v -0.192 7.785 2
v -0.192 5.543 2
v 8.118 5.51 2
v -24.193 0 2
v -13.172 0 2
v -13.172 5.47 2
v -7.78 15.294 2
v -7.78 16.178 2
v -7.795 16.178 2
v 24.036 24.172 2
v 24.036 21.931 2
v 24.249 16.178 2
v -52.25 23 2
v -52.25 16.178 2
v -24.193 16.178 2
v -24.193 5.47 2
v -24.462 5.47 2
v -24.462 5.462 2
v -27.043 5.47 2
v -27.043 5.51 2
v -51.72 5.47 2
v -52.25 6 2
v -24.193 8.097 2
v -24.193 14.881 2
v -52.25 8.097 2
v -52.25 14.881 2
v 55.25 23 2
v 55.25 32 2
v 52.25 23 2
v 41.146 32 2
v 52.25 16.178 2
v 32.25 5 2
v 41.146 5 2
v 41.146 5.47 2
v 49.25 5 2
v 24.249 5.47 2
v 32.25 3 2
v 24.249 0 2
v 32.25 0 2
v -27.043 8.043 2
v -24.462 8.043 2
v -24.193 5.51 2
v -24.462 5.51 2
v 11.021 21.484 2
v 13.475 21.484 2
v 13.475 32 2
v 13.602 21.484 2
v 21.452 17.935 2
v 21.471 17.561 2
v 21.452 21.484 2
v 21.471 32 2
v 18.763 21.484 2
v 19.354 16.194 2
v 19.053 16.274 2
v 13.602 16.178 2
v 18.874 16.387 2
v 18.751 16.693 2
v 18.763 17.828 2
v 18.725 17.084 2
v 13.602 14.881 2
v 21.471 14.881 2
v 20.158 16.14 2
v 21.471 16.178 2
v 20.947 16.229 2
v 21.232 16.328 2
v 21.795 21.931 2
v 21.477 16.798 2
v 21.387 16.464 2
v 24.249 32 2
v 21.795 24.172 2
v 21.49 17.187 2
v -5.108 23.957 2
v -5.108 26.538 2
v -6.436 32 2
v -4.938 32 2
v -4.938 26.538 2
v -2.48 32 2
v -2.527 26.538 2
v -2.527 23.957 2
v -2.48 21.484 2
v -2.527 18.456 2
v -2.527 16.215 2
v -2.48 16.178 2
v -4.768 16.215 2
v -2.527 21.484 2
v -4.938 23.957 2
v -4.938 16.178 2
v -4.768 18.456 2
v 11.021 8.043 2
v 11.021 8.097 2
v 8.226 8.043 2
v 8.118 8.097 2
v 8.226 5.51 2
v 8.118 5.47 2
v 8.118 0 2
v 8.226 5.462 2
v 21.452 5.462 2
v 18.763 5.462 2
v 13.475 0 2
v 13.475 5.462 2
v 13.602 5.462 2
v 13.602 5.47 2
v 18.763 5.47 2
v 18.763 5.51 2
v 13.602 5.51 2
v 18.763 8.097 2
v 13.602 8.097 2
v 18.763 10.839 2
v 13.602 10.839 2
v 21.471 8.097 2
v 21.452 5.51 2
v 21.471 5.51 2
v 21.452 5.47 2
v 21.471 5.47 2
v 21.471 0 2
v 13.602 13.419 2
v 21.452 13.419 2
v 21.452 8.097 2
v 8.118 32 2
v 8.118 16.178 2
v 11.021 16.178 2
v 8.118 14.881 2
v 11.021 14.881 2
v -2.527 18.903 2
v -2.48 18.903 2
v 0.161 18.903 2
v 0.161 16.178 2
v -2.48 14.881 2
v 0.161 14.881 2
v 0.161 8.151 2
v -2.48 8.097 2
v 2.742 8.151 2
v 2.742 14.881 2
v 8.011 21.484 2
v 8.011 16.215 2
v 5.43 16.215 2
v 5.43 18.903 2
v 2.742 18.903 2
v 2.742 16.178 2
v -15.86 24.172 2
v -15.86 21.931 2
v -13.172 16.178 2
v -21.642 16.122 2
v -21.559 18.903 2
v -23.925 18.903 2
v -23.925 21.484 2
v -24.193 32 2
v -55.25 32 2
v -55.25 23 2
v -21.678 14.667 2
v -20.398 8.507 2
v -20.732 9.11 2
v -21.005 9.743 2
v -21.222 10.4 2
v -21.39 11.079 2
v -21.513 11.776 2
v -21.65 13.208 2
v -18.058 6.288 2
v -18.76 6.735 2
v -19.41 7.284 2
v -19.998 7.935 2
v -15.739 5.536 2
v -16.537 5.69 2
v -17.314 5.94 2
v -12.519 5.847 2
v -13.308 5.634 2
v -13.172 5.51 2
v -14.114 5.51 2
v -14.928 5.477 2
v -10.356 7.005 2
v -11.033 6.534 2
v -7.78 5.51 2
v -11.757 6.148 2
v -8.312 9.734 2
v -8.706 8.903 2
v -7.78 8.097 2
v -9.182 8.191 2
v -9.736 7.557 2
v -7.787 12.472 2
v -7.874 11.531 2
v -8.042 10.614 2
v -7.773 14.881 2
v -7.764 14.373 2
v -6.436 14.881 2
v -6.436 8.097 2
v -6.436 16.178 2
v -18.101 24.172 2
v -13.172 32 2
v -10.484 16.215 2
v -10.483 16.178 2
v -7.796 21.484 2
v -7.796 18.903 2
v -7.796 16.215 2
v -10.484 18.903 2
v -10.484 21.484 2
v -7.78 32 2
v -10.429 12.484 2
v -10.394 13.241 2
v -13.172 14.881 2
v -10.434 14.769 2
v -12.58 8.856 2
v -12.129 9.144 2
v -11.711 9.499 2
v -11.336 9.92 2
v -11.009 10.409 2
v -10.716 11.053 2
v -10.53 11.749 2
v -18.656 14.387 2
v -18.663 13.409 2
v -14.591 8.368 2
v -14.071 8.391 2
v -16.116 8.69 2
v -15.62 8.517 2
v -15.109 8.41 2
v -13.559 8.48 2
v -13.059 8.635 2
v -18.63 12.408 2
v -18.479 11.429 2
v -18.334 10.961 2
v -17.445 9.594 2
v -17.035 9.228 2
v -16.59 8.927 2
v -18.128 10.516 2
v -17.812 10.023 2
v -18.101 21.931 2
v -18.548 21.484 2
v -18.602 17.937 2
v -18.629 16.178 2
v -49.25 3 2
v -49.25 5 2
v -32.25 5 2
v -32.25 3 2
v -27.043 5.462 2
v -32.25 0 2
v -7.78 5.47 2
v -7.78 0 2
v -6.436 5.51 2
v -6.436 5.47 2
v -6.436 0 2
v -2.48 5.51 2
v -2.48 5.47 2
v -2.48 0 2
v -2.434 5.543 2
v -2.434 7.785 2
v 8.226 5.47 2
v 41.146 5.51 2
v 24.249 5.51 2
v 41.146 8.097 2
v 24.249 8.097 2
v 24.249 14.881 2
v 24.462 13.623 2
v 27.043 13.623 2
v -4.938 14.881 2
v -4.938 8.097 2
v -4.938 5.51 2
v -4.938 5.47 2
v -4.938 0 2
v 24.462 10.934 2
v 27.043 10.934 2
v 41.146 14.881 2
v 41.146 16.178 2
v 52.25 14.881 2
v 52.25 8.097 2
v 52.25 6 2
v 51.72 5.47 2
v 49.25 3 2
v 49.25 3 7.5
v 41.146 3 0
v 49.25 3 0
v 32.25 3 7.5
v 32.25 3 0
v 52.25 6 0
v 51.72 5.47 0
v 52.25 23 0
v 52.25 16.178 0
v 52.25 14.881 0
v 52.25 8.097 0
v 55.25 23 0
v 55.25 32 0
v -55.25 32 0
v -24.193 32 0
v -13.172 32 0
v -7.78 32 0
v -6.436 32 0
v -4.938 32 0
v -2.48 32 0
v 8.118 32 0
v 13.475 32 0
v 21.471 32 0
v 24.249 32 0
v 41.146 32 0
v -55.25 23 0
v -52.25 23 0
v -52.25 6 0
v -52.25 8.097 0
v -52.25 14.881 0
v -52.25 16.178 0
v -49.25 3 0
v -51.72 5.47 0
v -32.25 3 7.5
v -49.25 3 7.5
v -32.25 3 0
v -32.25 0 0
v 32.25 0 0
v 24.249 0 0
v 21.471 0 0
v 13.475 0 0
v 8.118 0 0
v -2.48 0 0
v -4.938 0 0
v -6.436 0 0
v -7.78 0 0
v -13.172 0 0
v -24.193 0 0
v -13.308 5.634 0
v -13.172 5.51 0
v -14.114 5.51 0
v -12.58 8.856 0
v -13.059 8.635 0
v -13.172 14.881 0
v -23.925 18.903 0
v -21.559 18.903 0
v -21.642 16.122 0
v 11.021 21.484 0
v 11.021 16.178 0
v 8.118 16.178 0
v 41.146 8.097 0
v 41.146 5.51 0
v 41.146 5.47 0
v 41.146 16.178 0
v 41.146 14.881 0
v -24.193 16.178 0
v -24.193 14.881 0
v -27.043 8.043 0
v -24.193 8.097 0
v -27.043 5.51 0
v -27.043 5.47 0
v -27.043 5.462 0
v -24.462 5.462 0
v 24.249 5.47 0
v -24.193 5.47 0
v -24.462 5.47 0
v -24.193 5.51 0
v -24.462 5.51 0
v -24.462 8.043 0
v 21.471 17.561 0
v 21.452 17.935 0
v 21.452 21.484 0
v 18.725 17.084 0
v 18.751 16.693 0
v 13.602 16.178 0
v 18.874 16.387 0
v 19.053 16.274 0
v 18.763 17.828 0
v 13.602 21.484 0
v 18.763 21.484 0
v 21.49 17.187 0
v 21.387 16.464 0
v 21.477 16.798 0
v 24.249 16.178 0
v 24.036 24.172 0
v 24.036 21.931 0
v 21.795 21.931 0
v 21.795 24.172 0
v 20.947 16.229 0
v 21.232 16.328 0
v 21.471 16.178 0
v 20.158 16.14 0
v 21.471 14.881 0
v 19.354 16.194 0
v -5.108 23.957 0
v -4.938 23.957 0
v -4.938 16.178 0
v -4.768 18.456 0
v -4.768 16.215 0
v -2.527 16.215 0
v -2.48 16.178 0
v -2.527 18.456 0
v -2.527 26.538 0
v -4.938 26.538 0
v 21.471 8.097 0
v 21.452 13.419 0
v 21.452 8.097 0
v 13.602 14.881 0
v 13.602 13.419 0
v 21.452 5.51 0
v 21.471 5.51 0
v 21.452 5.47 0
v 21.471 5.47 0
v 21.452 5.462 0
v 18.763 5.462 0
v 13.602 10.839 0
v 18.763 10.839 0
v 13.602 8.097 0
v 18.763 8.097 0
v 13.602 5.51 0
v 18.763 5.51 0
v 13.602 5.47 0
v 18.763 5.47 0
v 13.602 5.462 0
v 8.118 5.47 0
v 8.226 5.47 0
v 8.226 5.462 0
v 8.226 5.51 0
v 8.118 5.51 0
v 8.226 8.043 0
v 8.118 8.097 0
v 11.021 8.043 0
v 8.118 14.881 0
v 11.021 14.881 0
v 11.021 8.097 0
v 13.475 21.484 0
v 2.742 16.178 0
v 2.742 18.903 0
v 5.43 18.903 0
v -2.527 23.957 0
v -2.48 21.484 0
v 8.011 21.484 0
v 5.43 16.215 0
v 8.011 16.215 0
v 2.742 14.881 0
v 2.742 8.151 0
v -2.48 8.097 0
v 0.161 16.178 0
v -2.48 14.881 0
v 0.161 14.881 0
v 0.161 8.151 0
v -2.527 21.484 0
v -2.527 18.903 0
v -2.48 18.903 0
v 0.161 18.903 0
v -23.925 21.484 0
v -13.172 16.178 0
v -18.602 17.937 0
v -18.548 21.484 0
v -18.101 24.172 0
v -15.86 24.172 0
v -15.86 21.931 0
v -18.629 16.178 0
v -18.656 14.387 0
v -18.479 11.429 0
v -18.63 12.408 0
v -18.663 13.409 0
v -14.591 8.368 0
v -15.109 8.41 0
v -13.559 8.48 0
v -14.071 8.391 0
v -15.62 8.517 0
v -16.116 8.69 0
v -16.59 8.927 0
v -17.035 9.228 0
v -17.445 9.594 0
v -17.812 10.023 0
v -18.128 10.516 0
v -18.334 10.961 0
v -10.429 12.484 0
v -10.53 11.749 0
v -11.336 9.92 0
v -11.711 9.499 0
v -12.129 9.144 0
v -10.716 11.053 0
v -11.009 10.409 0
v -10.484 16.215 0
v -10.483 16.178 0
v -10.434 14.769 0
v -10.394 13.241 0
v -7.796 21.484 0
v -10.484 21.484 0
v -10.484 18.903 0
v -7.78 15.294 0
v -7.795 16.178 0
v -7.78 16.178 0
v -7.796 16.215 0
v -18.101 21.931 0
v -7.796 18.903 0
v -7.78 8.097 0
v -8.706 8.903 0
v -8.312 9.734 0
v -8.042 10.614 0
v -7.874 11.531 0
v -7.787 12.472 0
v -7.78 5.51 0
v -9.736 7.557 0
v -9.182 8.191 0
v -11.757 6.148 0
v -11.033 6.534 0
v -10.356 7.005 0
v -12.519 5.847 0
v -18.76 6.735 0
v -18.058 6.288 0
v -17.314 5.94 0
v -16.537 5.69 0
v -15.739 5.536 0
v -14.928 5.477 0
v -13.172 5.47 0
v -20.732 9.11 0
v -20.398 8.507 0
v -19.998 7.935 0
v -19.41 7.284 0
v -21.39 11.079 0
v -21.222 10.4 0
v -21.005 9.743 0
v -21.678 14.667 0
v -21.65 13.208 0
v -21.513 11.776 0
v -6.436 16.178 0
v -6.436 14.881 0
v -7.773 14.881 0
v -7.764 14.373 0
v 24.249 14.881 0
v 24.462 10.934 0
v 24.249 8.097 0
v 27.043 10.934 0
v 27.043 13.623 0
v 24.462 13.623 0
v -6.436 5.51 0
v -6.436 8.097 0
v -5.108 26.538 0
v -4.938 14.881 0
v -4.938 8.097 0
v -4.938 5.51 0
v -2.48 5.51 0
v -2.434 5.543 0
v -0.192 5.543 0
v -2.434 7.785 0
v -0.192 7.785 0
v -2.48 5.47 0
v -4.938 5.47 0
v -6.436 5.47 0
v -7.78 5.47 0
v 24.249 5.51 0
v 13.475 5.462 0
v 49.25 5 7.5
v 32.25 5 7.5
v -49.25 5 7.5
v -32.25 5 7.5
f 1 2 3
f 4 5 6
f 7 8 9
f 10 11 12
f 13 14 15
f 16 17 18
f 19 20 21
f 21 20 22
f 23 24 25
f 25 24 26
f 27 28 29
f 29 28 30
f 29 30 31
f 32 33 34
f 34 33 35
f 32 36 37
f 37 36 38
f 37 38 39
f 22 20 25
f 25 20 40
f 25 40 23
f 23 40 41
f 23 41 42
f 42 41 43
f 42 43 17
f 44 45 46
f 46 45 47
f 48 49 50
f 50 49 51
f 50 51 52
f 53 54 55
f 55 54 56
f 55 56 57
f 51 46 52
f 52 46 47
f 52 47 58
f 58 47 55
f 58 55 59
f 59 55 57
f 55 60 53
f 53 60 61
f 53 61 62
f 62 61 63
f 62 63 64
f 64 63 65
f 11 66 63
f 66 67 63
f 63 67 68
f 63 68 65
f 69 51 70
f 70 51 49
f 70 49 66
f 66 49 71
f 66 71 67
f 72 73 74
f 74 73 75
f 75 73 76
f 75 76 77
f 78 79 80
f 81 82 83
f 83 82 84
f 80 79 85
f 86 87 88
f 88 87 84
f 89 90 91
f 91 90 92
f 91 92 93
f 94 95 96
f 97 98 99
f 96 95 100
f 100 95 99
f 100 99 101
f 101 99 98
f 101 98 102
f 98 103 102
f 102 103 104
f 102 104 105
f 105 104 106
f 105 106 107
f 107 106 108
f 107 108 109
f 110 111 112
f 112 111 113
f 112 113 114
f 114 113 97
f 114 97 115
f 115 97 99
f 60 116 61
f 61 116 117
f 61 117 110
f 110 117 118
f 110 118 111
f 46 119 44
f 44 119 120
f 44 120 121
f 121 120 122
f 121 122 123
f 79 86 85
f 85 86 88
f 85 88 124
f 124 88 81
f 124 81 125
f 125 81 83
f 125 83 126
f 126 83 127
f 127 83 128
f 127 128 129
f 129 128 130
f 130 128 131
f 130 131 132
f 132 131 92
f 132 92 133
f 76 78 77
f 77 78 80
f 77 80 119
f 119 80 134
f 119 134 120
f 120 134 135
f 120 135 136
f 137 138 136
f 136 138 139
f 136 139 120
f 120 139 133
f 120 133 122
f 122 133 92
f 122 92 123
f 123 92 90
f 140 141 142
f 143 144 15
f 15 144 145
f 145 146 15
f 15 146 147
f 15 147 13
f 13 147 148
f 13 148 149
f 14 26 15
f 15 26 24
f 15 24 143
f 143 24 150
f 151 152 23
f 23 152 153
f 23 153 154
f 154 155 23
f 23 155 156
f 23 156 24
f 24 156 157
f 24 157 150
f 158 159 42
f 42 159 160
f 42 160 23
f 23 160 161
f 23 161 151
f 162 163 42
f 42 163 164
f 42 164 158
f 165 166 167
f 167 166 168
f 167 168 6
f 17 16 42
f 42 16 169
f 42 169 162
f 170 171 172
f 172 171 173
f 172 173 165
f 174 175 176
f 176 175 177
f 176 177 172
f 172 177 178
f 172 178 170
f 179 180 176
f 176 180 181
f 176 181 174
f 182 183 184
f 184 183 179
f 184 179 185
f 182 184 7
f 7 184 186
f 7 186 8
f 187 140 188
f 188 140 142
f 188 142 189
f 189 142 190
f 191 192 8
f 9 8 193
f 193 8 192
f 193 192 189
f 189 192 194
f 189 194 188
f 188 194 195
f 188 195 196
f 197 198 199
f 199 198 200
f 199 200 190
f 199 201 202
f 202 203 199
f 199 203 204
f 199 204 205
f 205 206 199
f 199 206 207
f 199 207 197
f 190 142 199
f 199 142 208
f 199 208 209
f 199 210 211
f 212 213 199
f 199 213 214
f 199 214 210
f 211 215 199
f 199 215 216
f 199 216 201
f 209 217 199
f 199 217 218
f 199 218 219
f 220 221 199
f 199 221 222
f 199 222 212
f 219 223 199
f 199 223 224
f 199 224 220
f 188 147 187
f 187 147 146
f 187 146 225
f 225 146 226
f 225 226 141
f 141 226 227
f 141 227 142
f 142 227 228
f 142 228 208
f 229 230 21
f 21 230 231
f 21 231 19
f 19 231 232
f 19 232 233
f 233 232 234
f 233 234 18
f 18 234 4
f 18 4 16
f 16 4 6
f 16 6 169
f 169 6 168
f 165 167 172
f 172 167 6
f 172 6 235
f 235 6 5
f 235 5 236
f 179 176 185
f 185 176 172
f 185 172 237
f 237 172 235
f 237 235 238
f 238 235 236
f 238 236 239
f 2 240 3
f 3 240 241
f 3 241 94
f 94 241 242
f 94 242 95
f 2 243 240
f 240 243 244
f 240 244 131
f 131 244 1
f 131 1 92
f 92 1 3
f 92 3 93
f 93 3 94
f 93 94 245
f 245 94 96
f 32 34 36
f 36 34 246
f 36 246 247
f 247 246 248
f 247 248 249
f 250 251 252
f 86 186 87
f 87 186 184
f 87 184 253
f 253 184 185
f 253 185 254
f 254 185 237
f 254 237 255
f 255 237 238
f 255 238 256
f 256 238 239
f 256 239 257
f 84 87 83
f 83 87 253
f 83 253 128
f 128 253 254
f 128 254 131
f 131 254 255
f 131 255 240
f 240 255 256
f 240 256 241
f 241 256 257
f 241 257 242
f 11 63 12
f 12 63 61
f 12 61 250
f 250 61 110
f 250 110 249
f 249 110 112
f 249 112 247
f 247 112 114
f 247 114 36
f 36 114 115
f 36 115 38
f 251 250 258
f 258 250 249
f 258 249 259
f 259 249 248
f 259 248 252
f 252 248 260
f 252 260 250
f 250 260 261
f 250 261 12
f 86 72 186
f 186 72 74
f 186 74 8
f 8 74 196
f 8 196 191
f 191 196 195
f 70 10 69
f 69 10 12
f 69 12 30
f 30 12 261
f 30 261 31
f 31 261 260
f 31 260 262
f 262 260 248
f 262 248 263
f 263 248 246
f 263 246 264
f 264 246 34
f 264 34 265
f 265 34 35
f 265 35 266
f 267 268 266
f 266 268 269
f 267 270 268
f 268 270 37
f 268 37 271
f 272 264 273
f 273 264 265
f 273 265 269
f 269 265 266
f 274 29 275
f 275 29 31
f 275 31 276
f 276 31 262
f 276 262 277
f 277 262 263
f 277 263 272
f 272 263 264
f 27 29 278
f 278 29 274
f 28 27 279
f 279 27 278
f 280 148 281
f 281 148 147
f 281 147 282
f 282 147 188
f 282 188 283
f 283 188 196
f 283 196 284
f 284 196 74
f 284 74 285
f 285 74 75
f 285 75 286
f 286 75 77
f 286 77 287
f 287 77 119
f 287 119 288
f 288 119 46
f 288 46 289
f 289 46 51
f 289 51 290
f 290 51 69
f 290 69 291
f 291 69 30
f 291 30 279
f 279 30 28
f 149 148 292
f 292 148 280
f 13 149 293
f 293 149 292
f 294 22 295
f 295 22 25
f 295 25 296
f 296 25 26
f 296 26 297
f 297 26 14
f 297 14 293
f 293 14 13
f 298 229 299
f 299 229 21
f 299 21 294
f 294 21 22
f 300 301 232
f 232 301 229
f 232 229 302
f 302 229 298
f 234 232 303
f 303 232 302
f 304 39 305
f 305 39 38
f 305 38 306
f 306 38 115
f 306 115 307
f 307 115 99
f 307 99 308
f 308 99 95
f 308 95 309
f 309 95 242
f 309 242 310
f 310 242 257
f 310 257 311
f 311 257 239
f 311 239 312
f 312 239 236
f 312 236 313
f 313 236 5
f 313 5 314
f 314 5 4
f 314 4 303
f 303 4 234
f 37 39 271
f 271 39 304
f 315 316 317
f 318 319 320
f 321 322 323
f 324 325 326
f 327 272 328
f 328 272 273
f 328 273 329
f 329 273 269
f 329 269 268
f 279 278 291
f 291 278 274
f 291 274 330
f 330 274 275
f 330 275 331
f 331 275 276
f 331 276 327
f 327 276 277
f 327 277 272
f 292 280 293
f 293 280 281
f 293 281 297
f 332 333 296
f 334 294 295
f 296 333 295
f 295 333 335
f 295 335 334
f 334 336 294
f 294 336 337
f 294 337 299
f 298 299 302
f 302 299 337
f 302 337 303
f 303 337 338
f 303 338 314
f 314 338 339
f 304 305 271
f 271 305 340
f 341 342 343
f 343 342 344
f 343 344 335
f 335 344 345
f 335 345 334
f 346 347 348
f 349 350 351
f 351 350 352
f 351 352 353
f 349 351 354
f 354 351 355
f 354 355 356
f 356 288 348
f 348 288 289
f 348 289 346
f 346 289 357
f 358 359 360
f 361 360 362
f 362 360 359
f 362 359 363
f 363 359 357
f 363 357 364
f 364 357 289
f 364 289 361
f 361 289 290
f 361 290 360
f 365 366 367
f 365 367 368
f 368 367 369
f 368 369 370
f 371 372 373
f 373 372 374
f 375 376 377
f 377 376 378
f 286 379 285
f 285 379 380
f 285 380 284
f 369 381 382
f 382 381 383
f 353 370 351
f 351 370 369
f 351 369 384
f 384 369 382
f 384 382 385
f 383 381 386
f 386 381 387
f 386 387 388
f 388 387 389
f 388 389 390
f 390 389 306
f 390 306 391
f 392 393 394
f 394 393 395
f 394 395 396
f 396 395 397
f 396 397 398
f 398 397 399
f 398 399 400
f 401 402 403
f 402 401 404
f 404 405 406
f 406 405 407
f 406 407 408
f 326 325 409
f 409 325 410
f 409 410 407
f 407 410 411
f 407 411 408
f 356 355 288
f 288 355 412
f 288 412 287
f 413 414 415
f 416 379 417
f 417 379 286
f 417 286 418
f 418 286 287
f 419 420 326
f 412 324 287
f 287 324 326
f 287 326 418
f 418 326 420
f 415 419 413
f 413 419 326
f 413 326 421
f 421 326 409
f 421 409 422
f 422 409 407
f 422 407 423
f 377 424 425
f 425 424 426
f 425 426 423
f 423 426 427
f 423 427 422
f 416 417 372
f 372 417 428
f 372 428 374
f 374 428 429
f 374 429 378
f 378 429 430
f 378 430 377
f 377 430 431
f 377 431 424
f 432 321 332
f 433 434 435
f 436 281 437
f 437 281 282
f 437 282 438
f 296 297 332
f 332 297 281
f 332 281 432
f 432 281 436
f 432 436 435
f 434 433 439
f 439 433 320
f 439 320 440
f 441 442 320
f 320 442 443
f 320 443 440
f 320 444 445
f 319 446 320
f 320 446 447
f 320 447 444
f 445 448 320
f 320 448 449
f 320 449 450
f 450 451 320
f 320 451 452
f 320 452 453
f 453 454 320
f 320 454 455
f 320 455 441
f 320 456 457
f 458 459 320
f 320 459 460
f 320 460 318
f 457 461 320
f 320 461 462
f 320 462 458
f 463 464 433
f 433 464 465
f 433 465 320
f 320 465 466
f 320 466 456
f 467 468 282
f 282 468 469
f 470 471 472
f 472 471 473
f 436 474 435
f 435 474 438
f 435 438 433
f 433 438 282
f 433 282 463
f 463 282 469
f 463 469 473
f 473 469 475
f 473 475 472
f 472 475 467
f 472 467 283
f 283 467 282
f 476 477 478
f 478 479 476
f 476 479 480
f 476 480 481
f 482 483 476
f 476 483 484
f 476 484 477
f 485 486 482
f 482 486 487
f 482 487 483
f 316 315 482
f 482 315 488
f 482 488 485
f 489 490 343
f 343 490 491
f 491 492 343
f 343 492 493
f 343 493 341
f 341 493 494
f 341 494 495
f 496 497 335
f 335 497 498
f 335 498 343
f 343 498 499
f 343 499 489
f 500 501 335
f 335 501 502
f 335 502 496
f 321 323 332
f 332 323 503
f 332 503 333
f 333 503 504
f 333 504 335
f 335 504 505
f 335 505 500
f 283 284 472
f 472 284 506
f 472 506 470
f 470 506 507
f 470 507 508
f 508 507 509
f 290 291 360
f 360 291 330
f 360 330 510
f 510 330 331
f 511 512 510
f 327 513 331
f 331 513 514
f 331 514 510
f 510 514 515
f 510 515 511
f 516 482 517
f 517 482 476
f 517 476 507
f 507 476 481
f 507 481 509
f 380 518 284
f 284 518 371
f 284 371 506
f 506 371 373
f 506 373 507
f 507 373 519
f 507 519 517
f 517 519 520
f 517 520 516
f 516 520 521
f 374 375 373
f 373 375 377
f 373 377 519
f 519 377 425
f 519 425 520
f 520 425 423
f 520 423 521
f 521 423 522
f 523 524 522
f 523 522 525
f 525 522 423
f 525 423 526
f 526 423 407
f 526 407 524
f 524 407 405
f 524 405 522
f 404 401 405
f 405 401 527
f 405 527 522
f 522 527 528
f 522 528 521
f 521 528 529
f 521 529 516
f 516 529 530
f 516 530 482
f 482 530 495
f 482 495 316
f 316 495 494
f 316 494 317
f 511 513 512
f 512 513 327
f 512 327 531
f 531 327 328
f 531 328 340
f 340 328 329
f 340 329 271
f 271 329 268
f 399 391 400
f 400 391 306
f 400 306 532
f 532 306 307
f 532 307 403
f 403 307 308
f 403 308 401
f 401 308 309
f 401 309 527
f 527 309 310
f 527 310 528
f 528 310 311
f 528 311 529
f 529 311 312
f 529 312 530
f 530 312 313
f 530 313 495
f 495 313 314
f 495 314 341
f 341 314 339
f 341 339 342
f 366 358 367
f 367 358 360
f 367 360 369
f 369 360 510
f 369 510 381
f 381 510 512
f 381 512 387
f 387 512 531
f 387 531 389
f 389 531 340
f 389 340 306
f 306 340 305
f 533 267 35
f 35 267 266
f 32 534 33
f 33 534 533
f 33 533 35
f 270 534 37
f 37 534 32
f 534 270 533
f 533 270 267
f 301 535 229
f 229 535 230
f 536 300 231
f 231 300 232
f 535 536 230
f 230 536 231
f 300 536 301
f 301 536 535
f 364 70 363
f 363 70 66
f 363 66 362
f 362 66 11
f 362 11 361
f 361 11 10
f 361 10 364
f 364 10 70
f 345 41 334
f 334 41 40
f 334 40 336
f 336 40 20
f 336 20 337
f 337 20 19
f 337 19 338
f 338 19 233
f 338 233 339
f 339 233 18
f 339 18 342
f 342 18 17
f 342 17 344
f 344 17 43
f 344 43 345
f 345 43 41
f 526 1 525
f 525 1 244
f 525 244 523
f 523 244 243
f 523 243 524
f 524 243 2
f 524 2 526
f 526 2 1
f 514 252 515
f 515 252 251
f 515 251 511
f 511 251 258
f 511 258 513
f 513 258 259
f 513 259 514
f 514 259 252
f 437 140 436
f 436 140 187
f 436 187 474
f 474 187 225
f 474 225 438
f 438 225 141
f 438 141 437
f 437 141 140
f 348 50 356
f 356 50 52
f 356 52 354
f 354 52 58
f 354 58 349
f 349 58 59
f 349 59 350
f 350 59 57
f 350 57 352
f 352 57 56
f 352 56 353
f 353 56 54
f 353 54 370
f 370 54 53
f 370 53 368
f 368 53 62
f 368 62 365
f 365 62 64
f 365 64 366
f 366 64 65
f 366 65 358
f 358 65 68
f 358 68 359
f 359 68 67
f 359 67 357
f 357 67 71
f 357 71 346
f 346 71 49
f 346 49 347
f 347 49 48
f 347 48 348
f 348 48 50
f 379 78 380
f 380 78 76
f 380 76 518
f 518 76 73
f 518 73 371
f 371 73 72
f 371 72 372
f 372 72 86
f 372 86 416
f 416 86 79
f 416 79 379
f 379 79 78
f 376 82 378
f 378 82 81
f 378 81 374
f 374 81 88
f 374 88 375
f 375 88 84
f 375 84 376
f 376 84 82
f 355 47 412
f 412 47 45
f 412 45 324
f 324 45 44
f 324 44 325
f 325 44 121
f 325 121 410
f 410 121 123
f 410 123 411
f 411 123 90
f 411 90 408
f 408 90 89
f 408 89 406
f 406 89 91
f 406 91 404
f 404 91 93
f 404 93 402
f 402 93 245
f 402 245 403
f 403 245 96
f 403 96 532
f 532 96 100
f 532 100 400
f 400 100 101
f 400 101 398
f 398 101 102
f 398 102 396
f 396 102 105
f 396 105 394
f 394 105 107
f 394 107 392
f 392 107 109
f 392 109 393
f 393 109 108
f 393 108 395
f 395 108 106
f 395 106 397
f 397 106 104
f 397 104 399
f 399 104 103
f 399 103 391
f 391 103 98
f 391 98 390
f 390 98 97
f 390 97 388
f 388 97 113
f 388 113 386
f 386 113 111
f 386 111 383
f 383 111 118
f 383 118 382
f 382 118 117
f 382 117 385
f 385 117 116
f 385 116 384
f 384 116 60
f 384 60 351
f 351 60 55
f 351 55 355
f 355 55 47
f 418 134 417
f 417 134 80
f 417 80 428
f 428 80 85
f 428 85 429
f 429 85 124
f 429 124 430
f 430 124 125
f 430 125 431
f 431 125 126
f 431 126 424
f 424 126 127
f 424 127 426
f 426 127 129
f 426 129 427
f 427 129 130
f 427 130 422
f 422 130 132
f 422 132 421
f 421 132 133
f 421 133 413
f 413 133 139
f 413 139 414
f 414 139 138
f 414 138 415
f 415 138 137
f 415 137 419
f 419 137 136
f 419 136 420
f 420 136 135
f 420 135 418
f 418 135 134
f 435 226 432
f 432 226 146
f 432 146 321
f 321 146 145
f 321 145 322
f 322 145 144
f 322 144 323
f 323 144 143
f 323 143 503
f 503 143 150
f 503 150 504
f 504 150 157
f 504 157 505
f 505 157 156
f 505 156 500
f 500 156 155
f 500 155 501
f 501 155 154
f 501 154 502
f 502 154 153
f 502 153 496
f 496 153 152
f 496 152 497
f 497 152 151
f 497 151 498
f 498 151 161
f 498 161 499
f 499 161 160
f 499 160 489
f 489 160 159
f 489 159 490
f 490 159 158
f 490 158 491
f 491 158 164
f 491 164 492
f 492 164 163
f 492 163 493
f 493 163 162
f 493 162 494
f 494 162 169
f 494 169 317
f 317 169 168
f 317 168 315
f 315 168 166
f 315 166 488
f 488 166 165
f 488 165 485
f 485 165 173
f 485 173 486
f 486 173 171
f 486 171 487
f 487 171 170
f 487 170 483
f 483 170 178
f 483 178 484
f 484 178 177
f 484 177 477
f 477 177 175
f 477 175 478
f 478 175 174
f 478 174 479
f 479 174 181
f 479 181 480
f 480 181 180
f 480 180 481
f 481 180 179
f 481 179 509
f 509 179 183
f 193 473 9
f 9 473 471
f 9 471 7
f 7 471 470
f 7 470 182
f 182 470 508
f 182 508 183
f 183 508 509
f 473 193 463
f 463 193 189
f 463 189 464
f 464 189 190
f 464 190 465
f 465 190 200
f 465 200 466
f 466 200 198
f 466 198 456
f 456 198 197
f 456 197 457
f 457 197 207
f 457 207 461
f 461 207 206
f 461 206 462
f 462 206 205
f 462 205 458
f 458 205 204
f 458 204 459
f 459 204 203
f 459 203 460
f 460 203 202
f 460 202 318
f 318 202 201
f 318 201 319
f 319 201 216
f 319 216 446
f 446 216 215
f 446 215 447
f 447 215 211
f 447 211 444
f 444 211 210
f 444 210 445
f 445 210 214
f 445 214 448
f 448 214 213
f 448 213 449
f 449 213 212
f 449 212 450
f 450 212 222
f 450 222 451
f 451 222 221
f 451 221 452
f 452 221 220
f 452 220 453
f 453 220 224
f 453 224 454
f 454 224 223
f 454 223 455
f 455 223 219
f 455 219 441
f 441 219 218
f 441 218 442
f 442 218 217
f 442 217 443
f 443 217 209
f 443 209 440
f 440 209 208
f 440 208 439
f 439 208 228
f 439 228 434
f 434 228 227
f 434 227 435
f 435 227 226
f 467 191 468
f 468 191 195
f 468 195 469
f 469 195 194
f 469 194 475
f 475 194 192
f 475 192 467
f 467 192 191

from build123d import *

# Parameters (mm, degrees)
BOSS_EXTRUDE1_DEPTH = 2
SKETCH2_W           = 17
SKETCH2_H           = 2
BOSS_EXTRUDE2_DEPTH = 5.5
SKETCH3_W           = 2.580637968
SKETCH3_H           = 2.580641016
SKETCH3_W_2         = 2.241280605
SKETCH3_H_2         = 2.241280605
SKETCH3_W_3         = 2.688165312
SKETCH3_H_3         = 2.580637968
SKETCH3_W_4         = 2.580640102
SKETCH3_H_4         = 2.68816836
SKETCH3_W_5         = 2.580641016
CUT_EXTRUDE1_DEPTH  = 5


with BuildPart() as part:
    # Sketch1 → Boss-Extrude1 (new body)
    with BuildSketch(Plane.XY):
        Polygon((-32.25, 0), (32.25, 0), (32.25, 3), (49.25, 3), (52.25, 6), (52.25, 23), (55.25, 23), (55.25, 32), (-55.25, 32), (-55.25, 23), (-52.25, 23), (-52.25, 6), (-49.25, 3), (-32.25, 3), align=None)
    extrude(amount=BOSS_EXTRUDE1_DEPTH)

    # Sketch2 → Boss-Extrude2 (add)
    with BuildSketch(Plane.XY.offset(2)):
        with Locations((-40.75, 4)):
            Rectangle(SKETCH2_W, SKETCH2_H)
        with Locations((40.75, 4)):
            Rectangle(SKETCH2_W, SKETCH2_H)
    extrude(amount=BOSS_EXTRUDE2_DEPTH)

    # Sketch3 → Cut-Extrude1 (cut)
    with BuildSketch(Plane(origin=(0, 0, 0), x_dir=(-1, 0, 0), z_dir=(0, 0, -1))):
        with Locations((3.81719709, 25.247293672)):
            Rectangle(SKETCH3_W, SKETCH3_H)
        with Locations((-22.915804717, 23.05138755)):
            Rectangle(SKETCH3_W_2, SKETCH3_H_2)
        Polygon((-21.451570254, 21.483859492), (-21.451570254, 17.935481524), (-21.490182318, 17.186866511), (-21.476760755, 16.797579304), (-21.386689002, 16.464291172), (-21.231630232, 16.327958094), (-20.947078705, 16.228780137), (-20.157604338, 16.139996469), (-19.354479198, 16.194152418), (-19.052864358, 16.273649135), (-18.873917192, 16.387460236), (-18.751023052, 16.692507734), (-18.724770323, 17.0838688), (-18.763403723, 17.82795418), (-18.763403723, 21.483859492), align=None)
        with Locations((16.980823721, 23.05138755)):
            Rectangle(SKETCH3_W_2, SKETCH3_H_2)
        Polygon((-13.60212352, 21.483859492), (-13.60212352, 13.419360508), (-21.451570254, 13.419360508), (-21.451570254, 5.46238582), (-18.763403723, 5.46238582), (-18.763403723, 10.838719492), (-13.60212352, 10.838719492), (-13.60212352, 5.46238582), (-8.225790152, 5.46238582), (-8.225790152, 8.043026836), (-11.021483418, 8.043026836), (-11.021483418, 21.483859492), align=None)
        Polygon((-8.010736988, 21.483859492), (-8.010736988, 16.215053164), (-5.430096887, 16.215053164), (-5.430096887, 18.903221524), (-2.741930356, 18.903221524), (-2.741930356, 8.15055418), (-0.161290254, 8.15055418), (-0.161290254, 18.903221524), (2.526878106, 18.903221524), (2.526878106, 21.483859492), align=None)
        with Locations((3.647518408, 17.335693467)):
            Rectangle(SKETCH3_W_2, SKETCH3_H_2)
        with Locations((9.13976709, 20.193540508)):
            Rectangle(SKETCH3_W_3, SKETCH3_H_3)
        Polygon((18.54834873, 21.483859492), (18.602112402, 17.936682436), (18.655876074, 14.387100508), (18.662800216, 13.409194818), (18.630388393, 12.40793962), (18.478863779, 11.42852517), (18.333504049, 10.96112961), (18.128450154, 10.516140508), (17.811648959, 10.023003064), (17.444951089, 9.593525234), (17.035386148, 9.227963049), (16.589983736, 8.926572846), (16.115772848, 8.689610963), (15.619783696, 8.517333736), (15.109044966, 8.409997806), (14.590586567, 8.367859206), (14.071437796, 8.391173968), (13.558628255, 8.480199038), (13.059187242, 8.635190142), (12.58014436, 8.856404229), (12.1285286, 9.144097024), (11.711370176, 9.498525474), (11.33569808, 9.919945307), (11.00854161, 10.408613164), (10.716068027, 11.052540045), (10.529929105, 11.749061994), (10.429370099, 12.483578178), (10.393636261, 13.241488372), (10.433622973, 14.76908745), (10.483849746, 16.215053164), (7.795684434, 16.215053164), (7.763966032, 14.373321414), (7.786948866, 12.471897633), (7.874330149, 11.531087627), (8.04183939, 10.614098351), (8.311627319, 9.733844181), (8.705844666, 8.903239492), (9.182301016, 8.190905738), (9.735606894, 7.557466415), (10.355845938, 7.004639682), (11.033102089, 6.534144306), (11.757459289, 6.14769814), (12.51900148, 5.84701995), (13.307812602, 5.633827895), (14.113976293, 5.509840132), (14.927576495, 5.476775123), (15.738697453, 5.536351331), (16.5374225, 5.690287218), (17.313836188, 5.940300638), (18.058021847, 6.288110356), (18.76006342, 6.735434531), (19.410045152, 7.283991321), (19.998050682, 7.935499492), (20.398488388, 8.506577954), (20.732234939, 9.110218504), (21.004927916, 9.742712337), (21.222204596, 10.400350341), (21.38970256, 11.07942371), (21.513059082, 11.776223637), (21.649898432, 13.208167331), (21.67782177, 14.666510058), (21.641929436, 16.121580758), (21.559096074, 18.903221524), (23.924682402, 18.903221524), (23.924682402, 21.483859492), align=None)
        with Locations((-25.752637039, 12.278477871)):
            Rectangle(SKETCH3_W_4, SKETCH3_H_4)
        Polygon((0.192376871, 7.784525328), (0.192274032, 5.543244726), (2.433554635, 5.543347565), (2.433657474, 7.784628168), align=None)
        with Locations((25.752636582, 6.752706328)):
            Rectangle(SKETCH3_W_5, SKETCH3_H)
    extrude(amount=-CUT_EXTRUDE1_DEPTH, mode=Mode.SUBTRACT)


solid = part.part
